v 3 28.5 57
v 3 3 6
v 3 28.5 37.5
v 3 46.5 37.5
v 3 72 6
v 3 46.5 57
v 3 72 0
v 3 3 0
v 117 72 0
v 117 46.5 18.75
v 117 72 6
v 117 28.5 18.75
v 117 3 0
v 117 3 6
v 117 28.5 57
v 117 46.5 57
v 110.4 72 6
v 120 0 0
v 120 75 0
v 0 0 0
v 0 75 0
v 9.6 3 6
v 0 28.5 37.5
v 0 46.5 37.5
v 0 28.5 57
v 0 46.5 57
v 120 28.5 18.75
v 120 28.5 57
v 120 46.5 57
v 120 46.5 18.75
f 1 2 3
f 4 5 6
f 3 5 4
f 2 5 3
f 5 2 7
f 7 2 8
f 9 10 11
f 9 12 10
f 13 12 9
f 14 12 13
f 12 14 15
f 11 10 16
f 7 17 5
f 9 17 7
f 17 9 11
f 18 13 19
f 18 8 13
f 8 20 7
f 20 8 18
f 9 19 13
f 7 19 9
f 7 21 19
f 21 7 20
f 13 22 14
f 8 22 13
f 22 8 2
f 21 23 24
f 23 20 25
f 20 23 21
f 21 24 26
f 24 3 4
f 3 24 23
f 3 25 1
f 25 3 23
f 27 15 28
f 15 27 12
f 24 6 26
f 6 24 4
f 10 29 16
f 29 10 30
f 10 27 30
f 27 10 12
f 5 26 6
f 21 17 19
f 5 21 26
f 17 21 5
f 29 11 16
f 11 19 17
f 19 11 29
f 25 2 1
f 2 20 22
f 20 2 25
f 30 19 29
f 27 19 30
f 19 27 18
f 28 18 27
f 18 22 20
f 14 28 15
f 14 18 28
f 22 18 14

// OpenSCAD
width = 120;
depth = 75;
height = 75;
frame_tn = 3;
board_tn = 18;

difference() {
     rotate([90,0,90])linear_extrude(height=width) polygon(points=[[0,0], [depth,0], [depth/2,height]]);
     union () {
          translate([frame_tn,frame_tn,0]) cube([width-frame_tn*2, depth-frame_tn*2, height]);
          translate([0,depth/2-board_tn/2,height/2]) cube([width, board_tn, height]);
          translate([width/2,depth/2-board_tn/2,height/4]) cube([width, board_tn, height]);
     }
}
